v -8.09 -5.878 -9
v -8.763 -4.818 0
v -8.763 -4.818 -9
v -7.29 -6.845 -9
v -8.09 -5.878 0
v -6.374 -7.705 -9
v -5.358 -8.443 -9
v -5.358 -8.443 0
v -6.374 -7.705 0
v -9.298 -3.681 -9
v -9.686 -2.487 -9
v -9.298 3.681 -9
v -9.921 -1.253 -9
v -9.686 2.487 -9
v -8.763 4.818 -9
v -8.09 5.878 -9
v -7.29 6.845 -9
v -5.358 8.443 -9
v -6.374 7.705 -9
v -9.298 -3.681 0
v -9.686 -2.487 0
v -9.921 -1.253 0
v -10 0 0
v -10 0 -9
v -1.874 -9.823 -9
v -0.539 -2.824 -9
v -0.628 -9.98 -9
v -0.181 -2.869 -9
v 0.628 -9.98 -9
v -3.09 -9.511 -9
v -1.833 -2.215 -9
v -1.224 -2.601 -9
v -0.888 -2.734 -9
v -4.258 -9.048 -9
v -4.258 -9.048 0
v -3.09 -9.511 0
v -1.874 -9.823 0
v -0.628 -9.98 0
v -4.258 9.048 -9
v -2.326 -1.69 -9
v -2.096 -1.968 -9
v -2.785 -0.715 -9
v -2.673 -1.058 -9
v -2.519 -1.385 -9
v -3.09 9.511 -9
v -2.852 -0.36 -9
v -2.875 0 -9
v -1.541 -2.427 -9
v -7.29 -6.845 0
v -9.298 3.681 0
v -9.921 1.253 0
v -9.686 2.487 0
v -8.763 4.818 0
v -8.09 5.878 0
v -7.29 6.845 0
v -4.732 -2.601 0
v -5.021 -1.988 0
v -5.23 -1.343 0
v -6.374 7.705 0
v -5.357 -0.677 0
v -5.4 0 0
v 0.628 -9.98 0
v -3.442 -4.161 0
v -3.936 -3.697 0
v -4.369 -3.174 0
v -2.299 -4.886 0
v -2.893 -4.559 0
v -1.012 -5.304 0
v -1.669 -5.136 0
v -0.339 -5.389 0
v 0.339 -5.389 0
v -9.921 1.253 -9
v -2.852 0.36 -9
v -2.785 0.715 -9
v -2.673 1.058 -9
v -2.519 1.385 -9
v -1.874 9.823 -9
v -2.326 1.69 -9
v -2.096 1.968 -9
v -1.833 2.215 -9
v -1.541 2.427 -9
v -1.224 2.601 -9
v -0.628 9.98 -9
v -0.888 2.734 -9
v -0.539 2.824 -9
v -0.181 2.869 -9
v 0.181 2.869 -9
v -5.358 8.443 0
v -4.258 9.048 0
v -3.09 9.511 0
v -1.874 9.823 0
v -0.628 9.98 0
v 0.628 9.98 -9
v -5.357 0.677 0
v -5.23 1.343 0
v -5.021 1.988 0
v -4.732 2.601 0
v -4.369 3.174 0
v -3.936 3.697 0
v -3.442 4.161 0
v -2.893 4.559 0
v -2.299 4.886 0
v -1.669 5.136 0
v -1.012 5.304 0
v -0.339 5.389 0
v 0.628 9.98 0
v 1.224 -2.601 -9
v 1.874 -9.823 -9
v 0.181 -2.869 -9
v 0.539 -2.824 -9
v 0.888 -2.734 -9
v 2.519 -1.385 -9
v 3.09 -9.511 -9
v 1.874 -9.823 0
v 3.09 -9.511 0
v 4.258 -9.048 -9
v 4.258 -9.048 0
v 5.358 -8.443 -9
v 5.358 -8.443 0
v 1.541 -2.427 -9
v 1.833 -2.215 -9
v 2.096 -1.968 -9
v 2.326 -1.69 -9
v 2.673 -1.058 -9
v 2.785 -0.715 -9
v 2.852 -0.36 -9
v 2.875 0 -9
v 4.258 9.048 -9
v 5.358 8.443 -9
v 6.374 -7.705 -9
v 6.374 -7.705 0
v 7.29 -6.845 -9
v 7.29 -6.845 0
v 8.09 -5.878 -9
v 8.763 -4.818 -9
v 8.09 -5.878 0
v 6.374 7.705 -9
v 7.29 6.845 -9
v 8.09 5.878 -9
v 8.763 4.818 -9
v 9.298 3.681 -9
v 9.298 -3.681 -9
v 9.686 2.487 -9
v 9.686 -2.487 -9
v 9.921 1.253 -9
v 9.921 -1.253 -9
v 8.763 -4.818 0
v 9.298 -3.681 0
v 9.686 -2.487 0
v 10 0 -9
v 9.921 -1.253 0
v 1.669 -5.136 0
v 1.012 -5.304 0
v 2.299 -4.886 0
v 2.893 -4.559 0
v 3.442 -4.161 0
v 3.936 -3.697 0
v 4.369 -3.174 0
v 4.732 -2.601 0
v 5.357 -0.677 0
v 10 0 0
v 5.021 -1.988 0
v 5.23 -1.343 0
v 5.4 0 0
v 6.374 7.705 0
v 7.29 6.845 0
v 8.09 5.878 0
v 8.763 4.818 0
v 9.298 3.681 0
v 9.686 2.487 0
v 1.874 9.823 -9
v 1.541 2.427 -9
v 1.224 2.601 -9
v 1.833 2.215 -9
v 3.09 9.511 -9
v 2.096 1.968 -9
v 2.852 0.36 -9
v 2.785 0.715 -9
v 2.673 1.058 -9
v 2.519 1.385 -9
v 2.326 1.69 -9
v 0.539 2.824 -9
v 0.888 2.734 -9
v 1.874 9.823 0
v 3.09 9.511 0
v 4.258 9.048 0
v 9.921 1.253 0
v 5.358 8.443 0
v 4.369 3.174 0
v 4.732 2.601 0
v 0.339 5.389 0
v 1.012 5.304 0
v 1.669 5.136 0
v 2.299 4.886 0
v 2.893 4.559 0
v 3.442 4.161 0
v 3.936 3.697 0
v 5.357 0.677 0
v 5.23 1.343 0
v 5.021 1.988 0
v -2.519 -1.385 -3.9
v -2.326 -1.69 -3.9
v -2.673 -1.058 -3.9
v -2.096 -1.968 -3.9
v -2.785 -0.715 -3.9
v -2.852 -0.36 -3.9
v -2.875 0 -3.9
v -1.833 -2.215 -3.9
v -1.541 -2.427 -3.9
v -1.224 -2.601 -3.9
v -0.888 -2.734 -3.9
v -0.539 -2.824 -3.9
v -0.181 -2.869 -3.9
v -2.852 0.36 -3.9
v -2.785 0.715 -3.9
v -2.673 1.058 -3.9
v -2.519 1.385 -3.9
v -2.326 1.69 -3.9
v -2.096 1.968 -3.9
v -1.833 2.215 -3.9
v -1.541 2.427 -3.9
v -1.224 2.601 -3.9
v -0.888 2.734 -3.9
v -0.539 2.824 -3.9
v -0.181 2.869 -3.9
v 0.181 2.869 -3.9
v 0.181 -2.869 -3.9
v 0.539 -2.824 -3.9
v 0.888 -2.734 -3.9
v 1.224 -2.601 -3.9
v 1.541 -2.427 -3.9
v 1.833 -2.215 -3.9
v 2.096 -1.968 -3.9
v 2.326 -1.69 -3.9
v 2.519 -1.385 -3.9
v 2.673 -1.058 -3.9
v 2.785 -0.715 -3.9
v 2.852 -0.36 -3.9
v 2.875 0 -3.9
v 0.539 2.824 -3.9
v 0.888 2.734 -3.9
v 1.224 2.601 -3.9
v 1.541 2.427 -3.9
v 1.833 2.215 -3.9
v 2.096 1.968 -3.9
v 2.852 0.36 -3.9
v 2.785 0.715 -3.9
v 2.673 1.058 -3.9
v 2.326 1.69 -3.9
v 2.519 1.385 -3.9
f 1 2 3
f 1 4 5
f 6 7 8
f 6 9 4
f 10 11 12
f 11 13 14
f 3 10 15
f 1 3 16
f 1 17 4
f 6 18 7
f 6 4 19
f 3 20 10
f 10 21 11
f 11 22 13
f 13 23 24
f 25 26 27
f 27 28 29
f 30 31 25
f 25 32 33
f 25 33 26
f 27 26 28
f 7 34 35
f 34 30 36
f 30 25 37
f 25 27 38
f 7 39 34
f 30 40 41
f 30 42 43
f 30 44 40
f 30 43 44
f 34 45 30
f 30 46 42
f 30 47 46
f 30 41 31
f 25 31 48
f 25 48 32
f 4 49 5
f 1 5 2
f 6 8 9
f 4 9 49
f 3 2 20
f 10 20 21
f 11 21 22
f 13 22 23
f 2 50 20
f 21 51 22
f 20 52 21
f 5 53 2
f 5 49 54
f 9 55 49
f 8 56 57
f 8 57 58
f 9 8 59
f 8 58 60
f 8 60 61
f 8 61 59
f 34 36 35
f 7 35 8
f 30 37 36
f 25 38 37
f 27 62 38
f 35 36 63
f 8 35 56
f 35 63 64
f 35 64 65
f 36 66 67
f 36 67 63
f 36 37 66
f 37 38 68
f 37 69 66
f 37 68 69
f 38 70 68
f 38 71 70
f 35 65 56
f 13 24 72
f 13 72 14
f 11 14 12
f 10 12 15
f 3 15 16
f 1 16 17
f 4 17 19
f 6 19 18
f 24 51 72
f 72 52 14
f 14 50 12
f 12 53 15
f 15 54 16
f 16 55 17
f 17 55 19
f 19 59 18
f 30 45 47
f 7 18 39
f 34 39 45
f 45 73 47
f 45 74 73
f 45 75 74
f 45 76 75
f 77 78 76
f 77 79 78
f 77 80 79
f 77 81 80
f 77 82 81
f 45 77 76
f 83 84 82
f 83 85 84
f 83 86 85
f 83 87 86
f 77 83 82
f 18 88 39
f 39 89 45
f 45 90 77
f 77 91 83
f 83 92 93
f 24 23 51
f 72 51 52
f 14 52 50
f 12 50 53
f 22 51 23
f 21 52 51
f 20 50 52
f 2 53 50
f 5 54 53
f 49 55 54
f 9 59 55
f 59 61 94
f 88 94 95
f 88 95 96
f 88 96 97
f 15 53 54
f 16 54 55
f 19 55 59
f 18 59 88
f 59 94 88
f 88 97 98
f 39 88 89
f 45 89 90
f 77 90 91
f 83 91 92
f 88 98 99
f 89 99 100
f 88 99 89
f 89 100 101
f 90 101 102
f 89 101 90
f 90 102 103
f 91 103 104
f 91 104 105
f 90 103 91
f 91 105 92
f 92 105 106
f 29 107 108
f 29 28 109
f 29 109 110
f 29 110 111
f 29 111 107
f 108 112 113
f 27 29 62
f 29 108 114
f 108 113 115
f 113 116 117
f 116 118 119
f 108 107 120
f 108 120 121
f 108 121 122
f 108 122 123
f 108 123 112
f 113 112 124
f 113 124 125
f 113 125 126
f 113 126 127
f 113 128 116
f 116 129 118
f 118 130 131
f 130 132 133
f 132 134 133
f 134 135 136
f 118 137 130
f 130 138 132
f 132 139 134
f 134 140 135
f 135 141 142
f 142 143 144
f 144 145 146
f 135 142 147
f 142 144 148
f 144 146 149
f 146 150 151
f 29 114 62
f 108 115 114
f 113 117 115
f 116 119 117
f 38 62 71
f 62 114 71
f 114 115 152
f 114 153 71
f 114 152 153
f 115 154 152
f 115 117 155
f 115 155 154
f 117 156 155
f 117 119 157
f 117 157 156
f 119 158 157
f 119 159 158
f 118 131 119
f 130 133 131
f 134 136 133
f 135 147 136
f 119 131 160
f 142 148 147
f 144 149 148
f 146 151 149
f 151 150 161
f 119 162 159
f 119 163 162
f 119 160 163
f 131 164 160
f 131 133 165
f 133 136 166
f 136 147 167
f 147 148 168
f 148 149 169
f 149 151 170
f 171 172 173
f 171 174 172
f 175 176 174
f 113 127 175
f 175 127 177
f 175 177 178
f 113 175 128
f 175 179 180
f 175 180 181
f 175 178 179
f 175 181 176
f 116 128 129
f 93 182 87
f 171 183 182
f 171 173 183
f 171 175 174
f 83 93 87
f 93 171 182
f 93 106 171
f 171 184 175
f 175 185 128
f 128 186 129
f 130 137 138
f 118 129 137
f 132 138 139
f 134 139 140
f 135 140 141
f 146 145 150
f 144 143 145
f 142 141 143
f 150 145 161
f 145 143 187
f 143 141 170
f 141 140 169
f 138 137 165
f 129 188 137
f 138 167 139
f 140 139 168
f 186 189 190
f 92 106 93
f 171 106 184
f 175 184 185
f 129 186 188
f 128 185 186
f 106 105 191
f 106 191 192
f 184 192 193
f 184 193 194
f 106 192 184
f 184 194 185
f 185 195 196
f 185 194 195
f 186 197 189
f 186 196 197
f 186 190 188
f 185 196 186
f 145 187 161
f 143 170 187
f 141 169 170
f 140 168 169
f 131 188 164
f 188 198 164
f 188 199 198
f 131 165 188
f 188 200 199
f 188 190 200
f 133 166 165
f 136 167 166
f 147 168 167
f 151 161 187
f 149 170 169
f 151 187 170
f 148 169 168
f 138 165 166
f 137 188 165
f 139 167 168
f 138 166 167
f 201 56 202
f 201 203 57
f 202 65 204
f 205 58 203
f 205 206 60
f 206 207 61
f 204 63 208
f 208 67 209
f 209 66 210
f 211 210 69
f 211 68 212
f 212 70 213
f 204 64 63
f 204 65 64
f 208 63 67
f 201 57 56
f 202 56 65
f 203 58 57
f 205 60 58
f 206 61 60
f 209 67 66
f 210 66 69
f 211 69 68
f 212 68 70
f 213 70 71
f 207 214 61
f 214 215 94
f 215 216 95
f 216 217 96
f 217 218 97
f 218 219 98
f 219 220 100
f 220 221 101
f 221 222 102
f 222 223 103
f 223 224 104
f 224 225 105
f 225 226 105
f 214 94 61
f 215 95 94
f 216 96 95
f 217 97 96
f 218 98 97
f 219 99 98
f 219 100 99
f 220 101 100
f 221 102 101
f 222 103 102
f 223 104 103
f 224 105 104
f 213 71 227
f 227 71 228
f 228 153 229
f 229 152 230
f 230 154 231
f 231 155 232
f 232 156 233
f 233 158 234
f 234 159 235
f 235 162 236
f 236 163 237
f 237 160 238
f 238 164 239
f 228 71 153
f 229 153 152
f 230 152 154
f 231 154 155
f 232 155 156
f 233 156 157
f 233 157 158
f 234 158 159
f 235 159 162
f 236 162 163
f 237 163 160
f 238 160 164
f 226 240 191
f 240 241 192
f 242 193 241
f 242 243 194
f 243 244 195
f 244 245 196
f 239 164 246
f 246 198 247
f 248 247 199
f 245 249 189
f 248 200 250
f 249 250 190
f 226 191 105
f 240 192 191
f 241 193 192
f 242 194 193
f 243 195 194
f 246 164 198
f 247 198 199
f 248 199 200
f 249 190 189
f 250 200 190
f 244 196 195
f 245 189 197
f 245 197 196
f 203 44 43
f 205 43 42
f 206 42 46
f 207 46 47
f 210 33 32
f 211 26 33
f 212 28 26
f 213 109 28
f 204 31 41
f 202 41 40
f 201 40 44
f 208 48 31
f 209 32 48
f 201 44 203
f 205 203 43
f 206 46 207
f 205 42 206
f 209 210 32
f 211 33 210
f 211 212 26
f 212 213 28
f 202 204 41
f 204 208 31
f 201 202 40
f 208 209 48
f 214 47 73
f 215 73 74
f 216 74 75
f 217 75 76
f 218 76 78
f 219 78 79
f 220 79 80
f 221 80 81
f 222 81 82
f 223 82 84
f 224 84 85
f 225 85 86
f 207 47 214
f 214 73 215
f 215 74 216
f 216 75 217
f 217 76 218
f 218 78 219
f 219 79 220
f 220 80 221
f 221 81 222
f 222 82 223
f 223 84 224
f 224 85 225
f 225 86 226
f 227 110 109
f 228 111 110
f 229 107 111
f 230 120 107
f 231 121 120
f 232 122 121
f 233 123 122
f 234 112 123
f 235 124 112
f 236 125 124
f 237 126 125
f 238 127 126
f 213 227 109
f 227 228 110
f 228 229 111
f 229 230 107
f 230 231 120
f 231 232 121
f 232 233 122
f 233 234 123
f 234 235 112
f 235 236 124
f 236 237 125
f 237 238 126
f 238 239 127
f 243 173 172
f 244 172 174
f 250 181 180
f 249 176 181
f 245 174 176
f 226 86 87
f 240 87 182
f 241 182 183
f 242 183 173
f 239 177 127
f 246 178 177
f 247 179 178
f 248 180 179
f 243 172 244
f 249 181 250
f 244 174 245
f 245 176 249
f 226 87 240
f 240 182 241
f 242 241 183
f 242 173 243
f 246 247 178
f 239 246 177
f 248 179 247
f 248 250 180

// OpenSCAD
$fn = 50;

difference() {
	union() {
		translate(v = [0, 0, -9.0]) {
			cylinder(h = 9, r = 10.0);
		}
		#translate(v = [0, 0, -12.0]) {
			cylinder(h = 12, r = 2.875);
		}
	}
	union() {
		translate(v = [0, 0, 0]) {
			rotate(a = [0, 0, 0]) {
				difference() {
					union() {
						translate(v = [0, 0, -12.0]) {
							cylinder(h = 12, r = 2.6);
						}
						translate(v = [0, 0, -3.9]) {
							cylinder(h = 3.9, r1 = 2.875, r2 = 5.4);
						}
						translate(v = [0, 0, -12.0]) {
							cylinder(h = 12, r = 2.875);
						}
						translate(v = [0, 0, -12.0]) {
							cylinder(h = 12, r = 2.6);
						}
					}
					union();
				}
			}
		}
	}
}
